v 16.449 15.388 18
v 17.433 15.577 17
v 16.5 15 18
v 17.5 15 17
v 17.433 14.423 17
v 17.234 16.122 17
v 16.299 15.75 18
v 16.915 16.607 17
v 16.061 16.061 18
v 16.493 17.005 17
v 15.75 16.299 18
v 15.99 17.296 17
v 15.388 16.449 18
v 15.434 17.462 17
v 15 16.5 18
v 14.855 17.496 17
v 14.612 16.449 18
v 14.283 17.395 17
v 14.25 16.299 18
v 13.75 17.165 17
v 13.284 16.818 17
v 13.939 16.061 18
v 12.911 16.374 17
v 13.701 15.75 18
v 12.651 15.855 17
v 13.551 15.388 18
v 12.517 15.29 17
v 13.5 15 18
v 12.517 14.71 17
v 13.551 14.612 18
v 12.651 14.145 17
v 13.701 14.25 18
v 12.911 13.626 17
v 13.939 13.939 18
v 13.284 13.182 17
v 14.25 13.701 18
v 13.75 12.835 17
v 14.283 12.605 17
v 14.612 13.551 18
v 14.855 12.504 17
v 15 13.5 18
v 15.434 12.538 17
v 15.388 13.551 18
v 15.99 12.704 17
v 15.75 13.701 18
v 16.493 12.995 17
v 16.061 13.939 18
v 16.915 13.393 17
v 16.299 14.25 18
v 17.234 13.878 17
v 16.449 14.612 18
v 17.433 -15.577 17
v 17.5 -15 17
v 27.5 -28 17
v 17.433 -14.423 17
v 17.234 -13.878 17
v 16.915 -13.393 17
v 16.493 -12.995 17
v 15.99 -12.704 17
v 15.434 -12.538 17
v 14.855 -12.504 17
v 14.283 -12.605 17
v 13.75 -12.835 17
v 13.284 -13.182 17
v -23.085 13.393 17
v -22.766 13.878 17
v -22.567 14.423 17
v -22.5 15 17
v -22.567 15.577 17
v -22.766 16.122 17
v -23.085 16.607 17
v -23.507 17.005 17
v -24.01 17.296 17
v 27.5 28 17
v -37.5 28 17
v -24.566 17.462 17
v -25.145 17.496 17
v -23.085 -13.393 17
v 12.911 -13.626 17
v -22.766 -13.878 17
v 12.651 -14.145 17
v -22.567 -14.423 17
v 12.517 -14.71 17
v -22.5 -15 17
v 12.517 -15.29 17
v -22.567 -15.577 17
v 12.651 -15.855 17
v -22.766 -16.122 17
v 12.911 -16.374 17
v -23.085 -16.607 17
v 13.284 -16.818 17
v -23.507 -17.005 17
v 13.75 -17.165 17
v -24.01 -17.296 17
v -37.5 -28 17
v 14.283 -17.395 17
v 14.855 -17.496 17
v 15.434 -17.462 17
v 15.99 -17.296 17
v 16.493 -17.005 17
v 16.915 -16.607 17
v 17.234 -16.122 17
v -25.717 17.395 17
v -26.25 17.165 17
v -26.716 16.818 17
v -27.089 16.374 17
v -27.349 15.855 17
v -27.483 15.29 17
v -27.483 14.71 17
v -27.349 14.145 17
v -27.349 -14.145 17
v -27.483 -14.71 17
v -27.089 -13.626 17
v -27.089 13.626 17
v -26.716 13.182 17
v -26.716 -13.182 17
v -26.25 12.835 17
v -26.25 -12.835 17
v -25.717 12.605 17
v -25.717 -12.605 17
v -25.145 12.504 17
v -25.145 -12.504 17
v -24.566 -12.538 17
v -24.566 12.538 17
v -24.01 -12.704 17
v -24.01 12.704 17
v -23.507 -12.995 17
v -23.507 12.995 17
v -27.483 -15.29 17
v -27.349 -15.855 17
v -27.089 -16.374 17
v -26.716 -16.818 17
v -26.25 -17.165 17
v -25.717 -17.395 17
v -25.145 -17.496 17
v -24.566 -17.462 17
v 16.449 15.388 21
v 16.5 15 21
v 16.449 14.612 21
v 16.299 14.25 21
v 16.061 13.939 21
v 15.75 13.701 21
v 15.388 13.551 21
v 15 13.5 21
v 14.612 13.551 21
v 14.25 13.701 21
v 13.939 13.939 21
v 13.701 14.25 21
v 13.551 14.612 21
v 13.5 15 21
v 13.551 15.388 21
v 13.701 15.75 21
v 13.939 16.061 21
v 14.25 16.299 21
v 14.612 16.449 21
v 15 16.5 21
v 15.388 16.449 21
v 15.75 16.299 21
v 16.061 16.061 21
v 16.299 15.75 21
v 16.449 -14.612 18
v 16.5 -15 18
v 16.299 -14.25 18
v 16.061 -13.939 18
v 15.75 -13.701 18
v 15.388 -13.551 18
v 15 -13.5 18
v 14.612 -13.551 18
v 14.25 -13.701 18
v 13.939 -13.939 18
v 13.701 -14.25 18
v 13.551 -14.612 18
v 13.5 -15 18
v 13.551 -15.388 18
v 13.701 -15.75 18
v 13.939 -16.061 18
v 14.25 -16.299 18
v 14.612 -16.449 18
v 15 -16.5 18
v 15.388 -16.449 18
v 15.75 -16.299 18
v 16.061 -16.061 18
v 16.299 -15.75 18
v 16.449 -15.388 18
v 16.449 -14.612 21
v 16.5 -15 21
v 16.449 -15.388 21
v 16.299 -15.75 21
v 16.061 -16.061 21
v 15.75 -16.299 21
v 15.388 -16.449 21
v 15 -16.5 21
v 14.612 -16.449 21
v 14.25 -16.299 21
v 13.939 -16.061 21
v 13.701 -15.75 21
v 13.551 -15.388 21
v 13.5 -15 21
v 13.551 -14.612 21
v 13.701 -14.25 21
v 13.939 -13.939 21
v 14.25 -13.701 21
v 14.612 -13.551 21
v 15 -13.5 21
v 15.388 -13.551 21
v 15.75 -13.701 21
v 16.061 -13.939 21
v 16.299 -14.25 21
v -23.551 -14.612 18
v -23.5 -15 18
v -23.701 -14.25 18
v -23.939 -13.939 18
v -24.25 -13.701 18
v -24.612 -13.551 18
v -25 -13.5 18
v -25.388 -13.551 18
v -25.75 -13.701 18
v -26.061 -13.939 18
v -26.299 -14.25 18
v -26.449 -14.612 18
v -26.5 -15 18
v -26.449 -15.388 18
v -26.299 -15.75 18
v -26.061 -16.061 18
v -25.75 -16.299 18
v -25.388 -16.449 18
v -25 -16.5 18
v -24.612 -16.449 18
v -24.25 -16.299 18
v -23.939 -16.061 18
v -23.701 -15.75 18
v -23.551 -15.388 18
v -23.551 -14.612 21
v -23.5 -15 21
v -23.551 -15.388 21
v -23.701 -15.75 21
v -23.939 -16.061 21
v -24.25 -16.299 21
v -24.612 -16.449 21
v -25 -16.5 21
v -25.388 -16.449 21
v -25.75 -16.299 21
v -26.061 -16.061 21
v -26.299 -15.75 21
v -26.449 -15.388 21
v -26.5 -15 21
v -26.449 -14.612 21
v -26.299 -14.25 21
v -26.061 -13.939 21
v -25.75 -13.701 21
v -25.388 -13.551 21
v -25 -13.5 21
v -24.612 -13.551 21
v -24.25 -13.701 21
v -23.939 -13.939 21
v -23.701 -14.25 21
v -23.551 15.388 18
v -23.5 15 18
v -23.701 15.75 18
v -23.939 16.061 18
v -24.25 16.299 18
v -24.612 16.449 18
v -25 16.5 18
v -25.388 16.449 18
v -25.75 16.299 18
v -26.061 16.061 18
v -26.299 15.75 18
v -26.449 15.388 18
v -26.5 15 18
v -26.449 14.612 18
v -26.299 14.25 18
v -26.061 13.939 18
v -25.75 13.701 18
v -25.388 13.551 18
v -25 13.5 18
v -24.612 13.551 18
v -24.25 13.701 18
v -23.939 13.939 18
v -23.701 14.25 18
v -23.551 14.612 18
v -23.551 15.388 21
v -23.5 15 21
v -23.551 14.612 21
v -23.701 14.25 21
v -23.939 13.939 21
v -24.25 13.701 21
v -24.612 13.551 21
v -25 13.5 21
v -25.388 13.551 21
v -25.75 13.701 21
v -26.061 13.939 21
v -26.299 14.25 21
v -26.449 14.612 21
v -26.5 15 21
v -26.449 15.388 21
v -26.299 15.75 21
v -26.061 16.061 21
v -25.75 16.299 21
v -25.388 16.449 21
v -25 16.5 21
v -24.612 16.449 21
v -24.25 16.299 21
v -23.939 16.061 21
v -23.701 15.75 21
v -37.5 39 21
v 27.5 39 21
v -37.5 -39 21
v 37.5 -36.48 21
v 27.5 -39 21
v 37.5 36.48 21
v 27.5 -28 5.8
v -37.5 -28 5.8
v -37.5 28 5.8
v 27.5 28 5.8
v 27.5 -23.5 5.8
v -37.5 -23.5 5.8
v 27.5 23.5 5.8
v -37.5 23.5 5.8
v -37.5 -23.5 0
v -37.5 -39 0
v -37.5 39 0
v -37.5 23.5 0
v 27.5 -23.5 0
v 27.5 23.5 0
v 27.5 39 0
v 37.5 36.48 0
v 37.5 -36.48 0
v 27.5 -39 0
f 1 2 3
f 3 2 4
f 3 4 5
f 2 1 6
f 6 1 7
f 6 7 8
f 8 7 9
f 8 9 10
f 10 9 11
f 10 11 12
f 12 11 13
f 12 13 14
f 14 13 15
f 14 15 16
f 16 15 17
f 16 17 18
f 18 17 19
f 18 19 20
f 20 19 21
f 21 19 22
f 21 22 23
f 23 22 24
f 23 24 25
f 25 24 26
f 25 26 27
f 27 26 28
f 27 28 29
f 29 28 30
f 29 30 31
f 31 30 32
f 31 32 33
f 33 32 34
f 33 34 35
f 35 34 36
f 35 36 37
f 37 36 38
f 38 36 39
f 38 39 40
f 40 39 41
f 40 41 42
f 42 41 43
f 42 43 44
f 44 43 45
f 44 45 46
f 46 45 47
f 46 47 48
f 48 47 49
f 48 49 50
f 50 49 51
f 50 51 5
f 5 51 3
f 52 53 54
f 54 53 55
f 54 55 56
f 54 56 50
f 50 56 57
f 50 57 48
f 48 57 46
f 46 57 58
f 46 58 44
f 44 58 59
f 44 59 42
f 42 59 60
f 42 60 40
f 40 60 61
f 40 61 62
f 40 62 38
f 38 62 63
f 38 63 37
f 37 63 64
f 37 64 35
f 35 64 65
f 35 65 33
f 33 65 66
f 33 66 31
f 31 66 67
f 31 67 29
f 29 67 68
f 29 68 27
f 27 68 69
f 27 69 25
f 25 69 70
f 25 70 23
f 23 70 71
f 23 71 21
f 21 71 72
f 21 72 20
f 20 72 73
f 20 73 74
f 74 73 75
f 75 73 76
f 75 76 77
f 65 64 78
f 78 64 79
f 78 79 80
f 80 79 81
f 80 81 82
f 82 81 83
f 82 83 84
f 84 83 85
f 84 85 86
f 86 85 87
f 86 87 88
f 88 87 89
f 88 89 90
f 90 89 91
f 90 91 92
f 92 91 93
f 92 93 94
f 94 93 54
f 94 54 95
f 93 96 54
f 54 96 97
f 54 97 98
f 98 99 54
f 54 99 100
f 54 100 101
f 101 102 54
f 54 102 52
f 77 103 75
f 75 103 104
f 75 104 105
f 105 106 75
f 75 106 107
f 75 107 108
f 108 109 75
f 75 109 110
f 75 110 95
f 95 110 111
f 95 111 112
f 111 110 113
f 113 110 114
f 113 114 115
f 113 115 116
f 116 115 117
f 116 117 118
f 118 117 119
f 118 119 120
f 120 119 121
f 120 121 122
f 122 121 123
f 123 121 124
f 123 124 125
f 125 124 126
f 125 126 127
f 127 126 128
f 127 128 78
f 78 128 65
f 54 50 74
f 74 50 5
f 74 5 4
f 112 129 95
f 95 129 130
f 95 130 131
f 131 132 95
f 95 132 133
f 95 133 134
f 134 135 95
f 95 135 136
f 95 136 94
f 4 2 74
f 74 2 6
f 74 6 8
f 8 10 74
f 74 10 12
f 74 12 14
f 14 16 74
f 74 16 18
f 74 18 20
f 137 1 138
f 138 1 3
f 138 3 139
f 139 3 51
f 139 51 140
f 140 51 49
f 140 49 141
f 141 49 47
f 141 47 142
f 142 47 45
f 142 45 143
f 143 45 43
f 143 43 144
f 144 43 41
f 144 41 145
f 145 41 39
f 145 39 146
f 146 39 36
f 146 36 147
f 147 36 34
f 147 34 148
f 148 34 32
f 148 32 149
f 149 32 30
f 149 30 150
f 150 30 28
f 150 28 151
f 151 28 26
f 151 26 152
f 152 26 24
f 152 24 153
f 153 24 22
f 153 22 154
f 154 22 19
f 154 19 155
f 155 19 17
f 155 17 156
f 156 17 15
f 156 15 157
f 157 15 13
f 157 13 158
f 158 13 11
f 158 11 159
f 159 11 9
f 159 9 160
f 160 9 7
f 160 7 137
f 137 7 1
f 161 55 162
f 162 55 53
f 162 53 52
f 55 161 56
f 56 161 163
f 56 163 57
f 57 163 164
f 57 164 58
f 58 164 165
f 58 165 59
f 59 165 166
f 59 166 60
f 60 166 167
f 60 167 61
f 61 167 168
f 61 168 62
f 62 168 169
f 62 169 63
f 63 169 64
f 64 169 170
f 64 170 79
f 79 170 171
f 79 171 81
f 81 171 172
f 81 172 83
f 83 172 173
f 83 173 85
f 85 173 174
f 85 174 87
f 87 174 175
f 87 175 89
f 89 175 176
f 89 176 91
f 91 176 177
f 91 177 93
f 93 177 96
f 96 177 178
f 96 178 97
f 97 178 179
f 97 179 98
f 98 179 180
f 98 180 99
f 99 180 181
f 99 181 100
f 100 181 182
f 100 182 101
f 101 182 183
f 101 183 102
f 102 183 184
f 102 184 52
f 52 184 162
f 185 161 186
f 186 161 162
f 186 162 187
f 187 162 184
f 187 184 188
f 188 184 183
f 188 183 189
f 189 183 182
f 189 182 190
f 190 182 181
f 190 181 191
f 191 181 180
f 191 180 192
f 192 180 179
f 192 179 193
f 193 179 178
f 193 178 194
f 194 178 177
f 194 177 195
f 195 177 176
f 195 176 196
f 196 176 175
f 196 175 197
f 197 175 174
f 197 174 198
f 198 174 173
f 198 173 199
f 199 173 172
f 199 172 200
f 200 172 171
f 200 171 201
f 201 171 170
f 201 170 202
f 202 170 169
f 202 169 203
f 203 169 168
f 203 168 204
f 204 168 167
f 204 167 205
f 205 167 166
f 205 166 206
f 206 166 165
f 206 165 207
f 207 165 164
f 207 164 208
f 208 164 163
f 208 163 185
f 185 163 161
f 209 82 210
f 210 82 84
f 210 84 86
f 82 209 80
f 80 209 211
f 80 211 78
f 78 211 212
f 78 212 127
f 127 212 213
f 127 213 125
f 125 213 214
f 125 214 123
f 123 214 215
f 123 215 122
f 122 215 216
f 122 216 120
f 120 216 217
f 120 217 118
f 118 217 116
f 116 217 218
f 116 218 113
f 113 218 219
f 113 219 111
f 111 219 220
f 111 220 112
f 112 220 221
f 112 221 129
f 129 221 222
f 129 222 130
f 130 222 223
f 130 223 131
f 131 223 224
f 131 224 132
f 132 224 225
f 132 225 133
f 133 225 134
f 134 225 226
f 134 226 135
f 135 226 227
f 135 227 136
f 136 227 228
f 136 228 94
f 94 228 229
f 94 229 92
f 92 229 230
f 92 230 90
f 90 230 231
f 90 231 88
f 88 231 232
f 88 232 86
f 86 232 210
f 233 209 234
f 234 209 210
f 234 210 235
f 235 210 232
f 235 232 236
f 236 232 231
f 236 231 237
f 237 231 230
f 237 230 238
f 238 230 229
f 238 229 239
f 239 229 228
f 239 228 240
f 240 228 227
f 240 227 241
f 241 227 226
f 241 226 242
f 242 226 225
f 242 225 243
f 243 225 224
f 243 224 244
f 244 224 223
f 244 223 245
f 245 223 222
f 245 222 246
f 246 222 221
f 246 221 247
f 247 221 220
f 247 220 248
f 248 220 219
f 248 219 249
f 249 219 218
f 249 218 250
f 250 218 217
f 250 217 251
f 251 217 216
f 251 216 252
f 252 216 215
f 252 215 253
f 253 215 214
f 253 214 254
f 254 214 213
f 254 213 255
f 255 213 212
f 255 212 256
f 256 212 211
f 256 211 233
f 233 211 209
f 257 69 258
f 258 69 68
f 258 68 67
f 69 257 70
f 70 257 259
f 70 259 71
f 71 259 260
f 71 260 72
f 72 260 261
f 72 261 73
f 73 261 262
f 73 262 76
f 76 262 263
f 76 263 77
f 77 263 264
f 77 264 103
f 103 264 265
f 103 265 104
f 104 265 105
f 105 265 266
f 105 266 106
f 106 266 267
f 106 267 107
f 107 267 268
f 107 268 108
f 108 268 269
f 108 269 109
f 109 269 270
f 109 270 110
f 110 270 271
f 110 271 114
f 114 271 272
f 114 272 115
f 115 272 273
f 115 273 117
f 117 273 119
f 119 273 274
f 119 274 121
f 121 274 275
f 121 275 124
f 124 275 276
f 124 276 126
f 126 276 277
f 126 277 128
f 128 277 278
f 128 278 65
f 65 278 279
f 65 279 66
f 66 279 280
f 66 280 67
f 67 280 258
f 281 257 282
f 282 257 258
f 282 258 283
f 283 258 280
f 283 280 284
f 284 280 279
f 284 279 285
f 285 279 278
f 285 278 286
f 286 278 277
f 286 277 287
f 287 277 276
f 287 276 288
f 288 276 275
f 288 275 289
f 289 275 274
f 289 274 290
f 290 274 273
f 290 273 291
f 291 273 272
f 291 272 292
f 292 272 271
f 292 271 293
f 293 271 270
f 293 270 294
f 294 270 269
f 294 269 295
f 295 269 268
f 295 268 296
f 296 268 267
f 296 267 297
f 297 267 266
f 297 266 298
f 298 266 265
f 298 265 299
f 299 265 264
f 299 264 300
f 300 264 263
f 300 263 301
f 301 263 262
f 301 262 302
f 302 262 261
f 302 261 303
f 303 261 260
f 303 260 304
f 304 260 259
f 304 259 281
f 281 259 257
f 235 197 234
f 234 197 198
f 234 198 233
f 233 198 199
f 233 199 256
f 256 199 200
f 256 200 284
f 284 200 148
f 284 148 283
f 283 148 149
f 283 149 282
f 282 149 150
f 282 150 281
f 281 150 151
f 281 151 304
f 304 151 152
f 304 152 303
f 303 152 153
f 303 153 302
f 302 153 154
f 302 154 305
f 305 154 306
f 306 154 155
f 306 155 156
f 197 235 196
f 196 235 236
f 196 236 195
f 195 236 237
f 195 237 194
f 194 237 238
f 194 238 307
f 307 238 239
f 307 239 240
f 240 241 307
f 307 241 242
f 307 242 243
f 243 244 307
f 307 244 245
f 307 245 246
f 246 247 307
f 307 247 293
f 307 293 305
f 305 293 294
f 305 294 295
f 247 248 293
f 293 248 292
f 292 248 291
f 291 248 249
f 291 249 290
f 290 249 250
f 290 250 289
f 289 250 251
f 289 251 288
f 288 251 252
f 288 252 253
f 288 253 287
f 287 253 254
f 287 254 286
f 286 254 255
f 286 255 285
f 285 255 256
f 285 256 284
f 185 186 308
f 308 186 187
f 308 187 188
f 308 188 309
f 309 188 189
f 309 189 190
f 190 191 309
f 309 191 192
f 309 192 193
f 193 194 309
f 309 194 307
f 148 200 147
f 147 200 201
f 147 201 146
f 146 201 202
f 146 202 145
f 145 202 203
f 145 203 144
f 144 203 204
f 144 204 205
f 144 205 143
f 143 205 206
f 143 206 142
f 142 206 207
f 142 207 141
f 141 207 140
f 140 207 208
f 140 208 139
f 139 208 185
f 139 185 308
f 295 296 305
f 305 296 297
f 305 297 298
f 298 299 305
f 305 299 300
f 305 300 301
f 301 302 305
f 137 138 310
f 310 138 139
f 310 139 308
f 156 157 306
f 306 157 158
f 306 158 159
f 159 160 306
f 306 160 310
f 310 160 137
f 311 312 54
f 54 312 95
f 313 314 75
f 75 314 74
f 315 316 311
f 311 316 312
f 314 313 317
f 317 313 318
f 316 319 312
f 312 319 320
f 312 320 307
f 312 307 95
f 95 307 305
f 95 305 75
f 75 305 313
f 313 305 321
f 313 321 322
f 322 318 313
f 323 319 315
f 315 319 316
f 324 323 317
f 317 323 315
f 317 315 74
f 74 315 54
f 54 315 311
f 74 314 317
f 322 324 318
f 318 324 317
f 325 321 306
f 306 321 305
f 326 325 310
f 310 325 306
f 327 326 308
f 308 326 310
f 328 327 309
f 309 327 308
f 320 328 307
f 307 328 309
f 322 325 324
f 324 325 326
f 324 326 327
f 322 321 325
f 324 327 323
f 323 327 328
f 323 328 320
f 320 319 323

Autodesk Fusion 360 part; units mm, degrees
sketch "Sketch1" plane through (0, 0, 0) normal (0, 0, 1) x (1, 0, 0)
  line L0 (27.5, 28) -> (-37.5, 28)
  line L1 (-37.5, 39) -> (-37.5, -23.5)
  line L2 (-37.5, -28) -> (27.5, -28)
  line L3 (27.5, -28) -> (27.5, 28)
  line L4 (27.5, 23.5) -> (-37.5, 23.5)
  line L5 (-37.5, -23.5) -> (27.5, -23.5)
  line L6 (27.5, -23.5) -> (27.5, 23.5)
  line L7 (27.5, 39) -> (-37.5, 39)
  line L8 (37.5, -28) -> (37.5, 36.48)
  line L9 (27.5, 39) -> (37.5, 36.48)
  line L10 (1.75, 0) -> (22.5, 0)
  line L11 (37.5, 28) -> (37.5, -36.48)
  line L12 (27.5, -39) -> (37.5, -36.48)
  line L13 (27.5, -39) -> (-37.5, -39)
  line L14 (-37.5, -39) -> (-37.5, 23.5)
  dimension "d1" = 65
  dimension "d2" = 56
  dimension "d3" = 65
  dimension "d4" = 47
  dimension "d5" = 11
  dimension "d6" = 10
extrude "Extrude1" add sketch "Sketch1" along normal blind 5.8 contours L0 L1 L3 L4 | L0 L1 L2 L3 L6 L7 L8 L9 L11 L12 L13 L14 | L2 L3 L5 L14
extrude "Extrude2" add sketch "Sketch1" along normal blind 17 contours L0 L1 L2 L3 L6 L7 L8 L9 L11 L12 L13 L14
extrude "Extrude3" add sketch "Sketch1" along normal blind 21 and the other way blind -17
sketch "Sketch2" plane through (0, 0, 21) normal (0, 0, 1) x (-1, 0, 0)
  line L0 (37.5, -39) -> (37.5, 39)
  line L1 (37.5, 39) -> (-27.5, 39)
  line L2 (-27.5, 39) -> (-37.5, 36.48)
  line L3 (-37.5, 36.48) -> (-37.5, -36.48)
  line L4 (-37.5, -36.48) -> (-27.5, -39)
  line L5 (-27.5, -39) -> (37.5, -39)
  circle A0 centre (25, 15) radius 1.5
  circle A1 centre (-15, 15) radius 1.5
  line L6 (-1.75, 0) -> (-22.5, 0)
  circle A2 centre (25, -15) radius 1.5
  circle A3 centre (-15, -15) radius 1.5
  dimension "d15" = 3
  dimension "d16" = 3
extrude "Extrude4" cut sketch "Sketch2" against normal blind 5 contours A0 | A1 | A2 | A3
chamfer "Chamfer1" distance 1 angle 45 4 edges at (-23.6015, 15.5424, 17) (-23.6015, -14.4576, 17) (16.3985, -14.4576, 17) (16.3985, 15.5424, 17)
